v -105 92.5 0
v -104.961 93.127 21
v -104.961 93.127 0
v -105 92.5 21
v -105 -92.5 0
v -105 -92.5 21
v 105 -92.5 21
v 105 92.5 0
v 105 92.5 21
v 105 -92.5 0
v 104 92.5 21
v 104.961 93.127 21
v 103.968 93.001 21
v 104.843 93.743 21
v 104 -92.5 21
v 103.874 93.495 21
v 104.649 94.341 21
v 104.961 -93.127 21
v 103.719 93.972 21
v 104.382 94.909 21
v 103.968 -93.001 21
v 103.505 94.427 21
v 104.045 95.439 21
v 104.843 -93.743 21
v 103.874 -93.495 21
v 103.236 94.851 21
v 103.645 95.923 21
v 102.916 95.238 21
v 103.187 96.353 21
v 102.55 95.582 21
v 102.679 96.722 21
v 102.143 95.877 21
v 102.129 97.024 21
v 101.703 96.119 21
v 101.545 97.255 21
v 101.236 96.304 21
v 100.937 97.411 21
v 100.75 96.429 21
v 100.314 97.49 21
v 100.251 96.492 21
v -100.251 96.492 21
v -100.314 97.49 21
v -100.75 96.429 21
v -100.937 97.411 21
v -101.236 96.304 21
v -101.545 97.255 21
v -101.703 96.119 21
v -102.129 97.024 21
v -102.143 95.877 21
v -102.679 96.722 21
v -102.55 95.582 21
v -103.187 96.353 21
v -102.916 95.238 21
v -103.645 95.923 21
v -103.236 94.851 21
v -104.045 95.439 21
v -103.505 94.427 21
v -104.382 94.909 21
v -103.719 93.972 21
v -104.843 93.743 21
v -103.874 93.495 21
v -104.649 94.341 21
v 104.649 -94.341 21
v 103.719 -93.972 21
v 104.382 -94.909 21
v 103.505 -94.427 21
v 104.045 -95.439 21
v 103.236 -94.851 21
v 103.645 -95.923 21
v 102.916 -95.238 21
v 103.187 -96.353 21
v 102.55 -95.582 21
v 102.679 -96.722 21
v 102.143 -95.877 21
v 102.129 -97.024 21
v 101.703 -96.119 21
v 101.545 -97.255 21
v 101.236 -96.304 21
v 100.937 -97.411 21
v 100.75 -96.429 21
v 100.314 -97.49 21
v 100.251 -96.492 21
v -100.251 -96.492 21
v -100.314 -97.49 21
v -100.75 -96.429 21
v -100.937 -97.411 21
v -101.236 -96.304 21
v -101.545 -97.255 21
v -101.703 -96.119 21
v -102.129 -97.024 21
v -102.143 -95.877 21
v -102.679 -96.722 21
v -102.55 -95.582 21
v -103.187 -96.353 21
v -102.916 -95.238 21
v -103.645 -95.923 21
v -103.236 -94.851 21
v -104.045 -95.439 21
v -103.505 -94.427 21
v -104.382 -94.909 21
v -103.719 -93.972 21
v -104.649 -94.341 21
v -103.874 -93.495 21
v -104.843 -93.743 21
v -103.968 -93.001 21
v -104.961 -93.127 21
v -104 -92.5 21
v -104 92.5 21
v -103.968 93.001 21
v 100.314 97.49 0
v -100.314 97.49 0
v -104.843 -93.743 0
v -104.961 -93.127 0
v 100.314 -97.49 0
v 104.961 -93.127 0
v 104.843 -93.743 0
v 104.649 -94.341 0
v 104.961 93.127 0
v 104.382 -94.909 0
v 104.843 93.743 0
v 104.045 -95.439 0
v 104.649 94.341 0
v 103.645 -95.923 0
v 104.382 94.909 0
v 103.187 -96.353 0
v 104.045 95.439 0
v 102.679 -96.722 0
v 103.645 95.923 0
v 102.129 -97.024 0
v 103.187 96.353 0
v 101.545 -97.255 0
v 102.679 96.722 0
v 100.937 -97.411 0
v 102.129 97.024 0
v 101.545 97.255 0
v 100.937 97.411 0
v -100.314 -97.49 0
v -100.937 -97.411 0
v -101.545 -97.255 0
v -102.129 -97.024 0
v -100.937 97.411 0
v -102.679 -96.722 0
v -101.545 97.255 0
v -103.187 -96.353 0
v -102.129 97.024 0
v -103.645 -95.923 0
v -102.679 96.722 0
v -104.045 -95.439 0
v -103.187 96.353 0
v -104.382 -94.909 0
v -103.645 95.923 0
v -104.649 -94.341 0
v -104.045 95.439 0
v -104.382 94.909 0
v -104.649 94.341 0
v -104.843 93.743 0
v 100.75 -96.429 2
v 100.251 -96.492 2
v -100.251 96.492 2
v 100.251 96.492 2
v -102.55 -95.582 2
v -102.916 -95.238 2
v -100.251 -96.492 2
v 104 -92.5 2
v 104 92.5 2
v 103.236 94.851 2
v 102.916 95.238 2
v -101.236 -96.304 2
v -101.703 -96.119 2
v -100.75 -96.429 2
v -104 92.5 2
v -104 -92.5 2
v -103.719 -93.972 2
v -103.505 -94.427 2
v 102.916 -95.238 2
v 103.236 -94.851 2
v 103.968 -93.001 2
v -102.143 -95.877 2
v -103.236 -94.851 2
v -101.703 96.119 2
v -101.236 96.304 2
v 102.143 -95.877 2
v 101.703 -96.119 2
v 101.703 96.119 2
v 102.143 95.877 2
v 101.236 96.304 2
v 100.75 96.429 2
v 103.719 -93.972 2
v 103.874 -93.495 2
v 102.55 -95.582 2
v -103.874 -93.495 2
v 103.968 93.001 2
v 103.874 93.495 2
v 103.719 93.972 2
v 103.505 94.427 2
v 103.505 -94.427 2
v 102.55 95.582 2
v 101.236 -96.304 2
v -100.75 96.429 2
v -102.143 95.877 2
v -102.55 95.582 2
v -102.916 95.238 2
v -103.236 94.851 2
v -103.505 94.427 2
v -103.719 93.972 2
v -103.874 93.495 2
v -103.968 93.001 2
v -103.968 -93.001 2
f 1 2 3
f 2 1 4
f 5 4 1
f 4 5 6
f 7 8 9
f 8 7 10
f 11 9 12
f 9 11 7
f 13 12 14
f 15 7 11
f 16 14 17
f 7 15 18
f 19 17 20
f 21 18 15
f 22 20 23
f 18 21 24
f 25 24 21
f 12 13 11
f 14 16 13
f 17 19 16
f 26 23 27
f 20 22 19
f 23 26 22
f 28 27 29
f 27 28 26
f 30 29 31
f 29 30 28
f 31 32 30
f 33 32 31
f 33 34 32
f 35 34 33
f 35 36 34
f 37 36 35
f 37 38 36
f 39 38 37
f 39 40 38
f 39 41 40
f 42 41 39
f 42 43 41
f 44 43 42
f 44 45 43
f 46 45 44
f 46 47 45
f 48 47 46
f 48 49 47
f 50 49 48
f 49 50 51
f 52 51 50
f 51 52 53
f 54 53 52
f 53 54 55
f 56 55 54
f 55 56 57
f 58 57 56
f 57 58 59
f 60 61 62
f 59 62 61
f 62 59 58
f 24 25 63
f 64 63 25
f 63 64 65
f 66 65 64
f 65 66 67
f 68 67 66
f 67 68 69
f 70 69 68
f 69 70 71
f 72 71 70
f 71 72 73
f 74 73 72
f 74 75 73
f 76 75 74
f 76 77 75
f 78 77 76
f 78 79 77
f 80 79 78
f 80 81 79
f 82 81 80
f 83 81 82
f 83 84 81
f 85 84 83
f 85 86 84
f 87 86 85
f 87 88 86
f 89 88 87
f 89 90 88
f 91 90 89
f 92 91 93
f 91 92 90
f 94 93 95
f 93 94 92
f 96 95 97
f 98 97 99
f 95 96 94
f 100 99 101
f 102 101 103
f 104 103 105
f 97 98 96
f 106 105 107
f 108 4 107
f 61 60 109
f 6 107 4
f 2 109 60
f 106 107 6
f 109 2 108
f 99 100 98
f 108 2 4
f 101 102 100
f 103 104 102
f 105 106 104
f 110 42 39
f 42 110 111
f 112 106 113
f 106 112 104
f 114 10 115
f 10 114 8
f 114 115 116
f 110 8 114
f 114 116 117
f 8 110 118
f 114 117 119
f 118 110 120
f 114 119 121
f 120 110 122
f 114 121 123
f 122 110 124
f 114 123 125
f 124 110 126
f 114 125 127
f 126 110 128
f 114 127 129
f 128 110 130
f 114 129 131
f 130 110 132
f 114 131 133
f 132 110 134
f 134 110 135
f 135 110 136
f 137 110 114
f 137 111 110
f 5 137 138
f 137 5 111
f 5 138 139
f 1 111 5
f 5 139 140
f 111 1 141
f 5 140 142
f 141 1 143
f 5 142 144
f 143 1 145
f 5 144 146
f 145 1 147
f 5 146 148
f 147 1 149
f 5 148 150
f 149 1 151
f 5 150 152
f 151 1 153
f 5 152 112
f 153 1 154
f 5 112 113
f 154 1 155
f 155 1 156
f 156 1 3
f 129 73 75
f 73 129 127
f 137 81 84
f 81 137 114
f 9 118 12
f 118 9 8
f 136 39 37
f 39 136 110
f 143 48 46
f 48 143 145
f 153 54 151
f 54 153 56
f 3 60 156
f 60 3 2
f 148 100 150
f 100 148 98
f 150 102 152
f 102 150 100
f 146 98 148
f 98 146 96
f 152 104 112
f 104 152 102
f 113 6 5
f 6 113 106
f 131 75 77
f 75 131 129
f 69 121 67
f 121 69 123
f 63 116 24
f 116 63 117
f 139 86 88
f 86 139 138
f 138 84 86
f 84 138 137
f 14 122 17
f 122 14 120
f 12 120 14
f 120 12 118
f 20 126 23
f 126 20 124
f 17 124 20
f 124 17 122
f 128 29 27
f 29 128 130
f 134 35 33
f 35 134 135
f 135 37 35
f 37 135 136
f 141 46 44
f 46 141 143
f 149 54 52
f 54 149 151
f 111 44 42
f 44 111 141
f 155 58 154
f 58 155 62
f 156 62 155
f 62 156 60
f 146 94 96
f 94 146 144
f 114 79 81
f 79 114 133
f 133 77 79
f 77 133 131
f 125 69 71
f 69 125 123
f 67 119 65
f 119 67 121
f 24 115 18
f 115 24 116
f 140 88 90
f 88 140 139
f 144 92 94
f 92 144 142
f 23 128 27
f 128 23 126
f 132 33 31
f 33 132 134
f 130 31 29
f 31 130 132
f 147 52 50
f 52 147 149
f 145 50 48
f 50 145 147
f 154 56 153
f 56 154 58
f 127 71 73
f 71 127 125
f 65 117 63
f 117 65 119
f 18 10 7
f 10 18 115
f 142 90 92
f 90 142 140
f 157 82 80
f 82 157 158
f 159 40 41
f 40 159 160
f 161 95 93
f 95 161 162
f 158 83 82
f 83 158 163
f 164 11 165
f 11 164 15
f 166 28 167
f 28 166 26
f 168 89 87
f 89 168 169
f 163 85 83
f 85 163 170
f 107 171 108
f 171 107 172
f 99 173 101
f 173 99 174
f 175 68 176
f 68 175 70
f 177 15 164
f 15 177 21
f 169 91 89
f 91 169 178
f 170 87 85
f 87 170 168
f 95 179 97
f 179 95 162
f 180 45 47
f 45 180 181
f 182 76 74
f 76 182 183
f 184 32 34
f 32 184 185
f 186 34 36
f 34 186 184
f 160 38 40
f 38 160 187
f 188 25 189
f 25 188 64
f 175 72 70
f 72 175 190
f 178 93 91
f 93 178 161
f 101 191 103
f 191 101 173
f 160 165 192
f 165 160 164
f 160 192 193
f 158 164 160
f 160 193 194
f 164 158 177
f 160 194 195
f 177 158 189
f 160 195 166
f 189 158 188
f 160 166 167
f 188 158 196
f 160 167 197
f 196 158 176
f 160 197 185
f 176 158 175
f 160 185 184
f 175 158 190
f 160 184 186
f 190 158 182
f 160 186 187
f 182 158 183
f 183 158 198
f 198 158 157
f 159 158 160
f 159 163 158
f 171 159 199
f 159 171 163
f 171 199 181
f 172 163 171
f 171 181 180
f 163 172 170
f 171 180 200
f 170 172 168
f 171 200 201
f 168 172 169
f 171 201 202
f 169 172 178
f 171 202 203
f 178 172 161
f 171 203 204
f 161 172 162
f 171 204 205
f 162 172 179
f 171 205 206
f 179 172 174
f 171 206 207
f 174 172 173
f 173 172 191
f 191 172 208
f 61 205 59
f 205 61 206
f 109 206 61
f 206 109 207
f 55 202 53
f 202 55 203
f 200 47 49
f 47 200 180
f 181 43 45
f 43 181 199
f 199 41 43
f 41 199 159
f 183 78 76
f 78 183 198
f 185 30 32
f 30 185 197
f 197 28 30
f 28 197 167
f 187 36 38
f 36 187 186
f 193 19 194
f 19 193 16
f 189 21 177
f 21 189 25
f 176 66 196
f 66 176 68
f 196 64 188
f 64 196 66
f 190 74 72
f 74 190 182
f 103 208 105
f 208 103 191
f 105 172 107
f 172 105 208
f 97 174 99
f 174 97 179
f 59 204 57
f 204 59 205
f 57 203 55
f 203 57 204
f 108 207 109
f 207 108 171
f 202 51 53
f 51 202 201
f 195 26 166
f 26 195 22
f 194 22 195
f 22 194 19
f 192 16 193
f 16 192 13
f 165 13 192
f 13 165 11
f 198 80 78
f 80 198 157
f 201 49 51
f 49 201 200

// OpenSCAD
$fn = 50;


difference() {
	union() {
		hull() {
			translate(v = [-100.0000000000, 92.5000000000, 0]) {
				cylinder(h = 21, r = 5);
			}
			translate(v = [100.0000000000, 92.5000000000, 0]) {
				cylinder(h = 21, r = 5);
			}
			translate(v = [-100.0000000000, -92.5000000000, 0]) {
				cylinder(h = 21, r = 5);
			}
			translate(v = [100.0000000000, -92.5000000000, 0]) {
				cylinder(h = 21, r = 5);
			}
		}
	}
	union() {
		translate(v = [0, 0, 2]) {
			hull() {
				translate(v = [-100.0000000000, 92.5000000000, 0]) {
					cylinder(h = 19, r = 4);
				}
				translate(v = [100.0000000000, 92.5000000000, 0]) {
					cylinder(h = 19, r = 4);
				}
				translate(v = [-100.0000000000, -92.5000000000, 0]) {
					cylinder(h = 19, r = 4);
				}
				translate(v = [100.0000000000, -92.5000000000, 0]) {
					cylinder(h = 19, r = 4);
				}
			}
		}
	}
}
